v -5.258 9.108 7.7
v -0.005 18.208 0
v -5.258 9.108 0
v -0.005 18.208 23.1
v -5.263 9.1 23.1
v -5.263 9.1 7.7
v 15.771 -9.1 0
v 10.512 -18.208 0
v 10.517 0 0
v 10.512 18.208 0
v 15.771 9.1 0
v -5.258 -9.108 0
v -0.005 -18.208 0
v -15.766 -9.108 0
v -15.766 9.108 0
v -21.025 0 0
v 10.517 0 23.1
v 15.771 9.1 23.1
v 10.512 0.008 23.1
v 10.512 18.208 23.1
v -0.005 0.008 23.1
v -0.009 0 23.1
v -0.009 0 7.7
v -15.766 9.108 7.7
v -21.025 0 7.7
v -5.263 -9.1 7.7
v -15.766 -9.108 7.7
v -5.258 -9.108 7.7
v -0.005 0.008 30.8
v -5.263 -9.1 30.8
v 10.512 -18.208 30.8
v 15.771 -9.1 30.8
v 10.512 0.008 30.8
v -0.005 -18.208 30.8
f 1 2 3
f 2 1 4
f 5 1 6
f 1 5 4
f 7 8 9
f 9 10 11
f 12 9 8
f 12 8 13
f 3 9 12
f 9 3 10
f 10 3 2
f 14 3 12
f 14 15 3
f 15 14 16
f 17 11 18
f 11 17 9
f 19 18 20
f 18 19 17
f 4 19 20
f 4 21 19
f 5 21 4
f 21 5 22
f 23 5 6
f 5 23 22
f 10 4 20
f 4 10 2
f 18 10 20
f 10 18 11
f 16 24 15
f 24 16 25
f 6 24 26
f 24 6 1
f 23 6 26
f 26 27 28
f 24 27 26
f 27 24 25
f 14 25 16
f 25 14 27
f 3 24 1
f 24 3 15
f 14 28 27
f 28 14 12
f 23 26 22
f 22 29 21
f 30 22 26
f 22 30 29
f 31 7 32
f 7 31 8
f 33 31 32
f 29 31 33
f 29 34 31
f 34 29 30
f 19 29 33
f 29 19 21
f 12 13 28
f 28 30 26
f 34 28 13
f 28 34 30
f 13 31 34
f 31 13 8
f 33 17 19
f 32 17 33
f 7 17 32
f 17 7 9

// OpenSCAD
// file: dimensions.scad
measureX = 9.10; // 92/2/2/sqrt(19)*sqrt(3)
measureY = 9.10; 
measureZ = 7.7; // 54/7 is about 7.7

halfSide = 1*tan(30);
h1 = 1;
dd = 0.001;
// main file
include <dimensions.scad>

hh = [3,1,4];

scale([measureX,measureY,measureZ]) union() {
    translate([halfSide,1,0]) 
    linear_extrude(height = hh[0]*h1, center = false)
    circle(2*halfSide + dd,$fn=6);
    
    translate([-2*halfSide,0,0]) 
    linear_extrude(height = hh[1]*h1, center = false)
    circle(2*halfSide + dd,$fn=6);
    
    translate([halfSide,-1,0]) 
    linear_extrude(height = hh[2]*h1, center = false)
    circle(2*halfSide + dd,$fn=6);
}
